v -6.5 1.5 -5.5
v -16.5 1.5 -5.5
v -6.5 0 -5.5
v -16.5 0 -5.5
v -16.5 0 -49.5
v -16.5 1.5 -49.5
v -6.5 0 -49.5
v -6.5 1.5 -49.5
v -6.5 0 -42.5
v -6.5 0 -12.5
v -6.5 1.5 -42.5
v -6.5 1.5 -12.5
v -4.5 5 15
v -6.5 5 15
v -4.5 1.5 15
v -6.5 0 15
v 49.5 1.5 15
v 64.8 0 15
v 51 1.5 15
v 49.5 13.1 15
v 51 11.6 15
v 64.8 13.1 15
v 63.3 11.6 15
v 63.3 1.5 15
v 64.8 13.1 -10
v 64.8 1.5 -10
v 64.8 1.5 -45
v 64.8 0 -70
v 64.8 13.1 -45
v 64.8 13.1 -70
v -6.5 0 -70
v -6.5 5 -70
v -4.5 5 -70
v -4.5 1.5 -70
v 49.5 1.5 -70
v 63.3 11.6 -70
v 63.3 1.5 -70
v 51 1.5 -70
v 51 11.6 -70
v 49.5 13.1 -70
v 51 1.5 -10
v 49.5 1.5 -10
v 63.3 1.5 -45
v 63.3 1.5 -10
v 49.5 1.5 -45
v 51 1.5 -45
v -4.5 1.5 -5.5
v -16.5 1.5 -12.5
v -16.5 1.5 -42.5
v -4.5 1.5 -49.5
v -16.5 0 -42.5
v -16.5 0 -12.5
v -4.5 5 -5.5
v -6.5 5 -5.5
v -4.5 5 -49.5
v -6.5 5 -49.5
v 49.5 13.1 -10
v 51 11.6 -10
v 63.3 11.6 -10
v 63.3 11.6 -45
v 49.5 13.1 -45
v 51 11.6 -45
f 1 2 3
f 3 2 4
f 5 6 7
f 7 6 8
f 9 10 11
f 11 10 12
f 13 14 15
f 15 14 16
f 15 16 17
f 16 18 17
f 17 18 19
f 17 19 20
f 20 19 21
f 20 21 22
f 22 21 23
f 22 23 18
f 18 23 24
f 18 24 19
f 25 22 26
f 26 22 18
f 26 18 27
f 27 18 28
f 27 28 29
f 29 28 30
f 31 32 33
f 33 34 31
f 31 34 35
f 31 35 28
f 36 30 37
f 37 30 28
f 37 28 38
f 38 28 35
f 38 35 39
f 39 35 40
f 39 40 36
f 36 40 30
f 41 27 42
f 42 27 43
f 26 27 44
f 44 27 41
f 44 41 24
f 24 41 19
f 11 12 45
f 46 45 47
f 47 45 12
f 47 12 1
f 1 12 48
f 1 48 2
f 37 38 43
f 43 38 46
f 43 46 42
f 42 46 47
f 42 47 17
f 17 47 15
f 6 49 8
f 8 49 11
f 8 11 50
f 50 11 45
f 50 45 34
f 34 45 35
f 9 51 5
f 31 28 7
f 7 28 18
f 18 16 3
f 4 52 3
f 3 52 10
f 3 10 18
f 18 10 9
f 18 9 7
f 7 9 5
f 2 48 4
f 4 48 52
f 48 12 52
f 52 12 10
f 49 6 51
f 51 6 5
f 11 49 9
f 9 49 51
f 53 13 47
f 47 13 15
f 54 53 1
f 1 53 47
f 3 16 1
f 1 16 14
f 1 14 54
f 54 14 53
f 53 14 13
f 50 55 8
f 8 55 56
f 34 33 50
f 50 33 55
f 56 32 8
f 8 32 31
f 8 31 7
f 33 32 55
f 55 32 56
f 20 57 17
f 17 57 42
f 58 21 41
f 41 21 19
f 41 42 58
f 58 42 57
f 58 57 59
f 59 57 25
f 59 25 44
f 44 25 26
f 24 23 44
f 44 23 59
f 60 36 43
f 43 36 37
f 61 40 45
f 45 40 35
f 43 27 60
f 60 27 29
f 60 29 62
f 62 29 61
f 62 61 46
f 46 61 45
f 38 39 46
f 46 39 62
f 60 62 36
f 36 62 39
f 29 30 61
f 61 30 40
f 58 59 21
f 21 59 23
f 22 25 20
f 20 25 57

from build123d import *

# Parameters (mm, degrees)
BOSS_EXTRUDE2_DEPTH  = 1.5
SKETCH1_4_W          = 10
SKETCH1_4_H          = 7
BOSS_EXTRUDE3_DEPTH  = 1.5
SKETCH1_14_W         = 2
SKETCH1_14_H         = 20.5
BOSS_EXTRUDE11_DEPTH = 5
SKETCH1_16_W         = 1.5
SKETCH1_16_H         = 25
BOSS_EXTRUDE12_DEPTH = 11.6
SKETCH2_W            = 15.3
SKETCH2_H            = 25
BOSS_EXTRUDE13_DEPTH = 1.5


with BuildPart() as part:
    # Sketch1 → Boss-Extrude2 (new body)
    with BuildSketch(Plane(origin=(0, 0, 0), x_dir=(1, 0, 0), z_dir=(0, 1, 0))):
        Polygon((49.5, 70), (-4.5, 70), (-4.5, 49.5), (-6.5, 49.5), (-6.5, 42.5), (-6.5, 12.5), (-6.5, 5.5), (-4.5, 5.5), (-4.5, -15), (21.3, -15), (32.3, -15), (47.433426619, -15), (49.5, -15), (49.5, 10), (51, 10), (51, -15), (52.3, -15), (53.8, -15), (59.19614989, -15), (63.3, -15), (63.3, 10), (64.8, 10), (64.8, 11.5), (64.8, 45), (63.3, 45), (63.3, 70), (60.5, 70), (51, 70), (51, 45), (49.5, 45), align=None)
    extrude(amount=BOSS_EXTRUDE2_DEPTH)

    # Sketch1<4> → Boss-Extrude3 (add)
    with BuildSketch(Plane(origin=(0, 0, 0), x_dir=(1, 0, 0), z_dir=(0, 1, 0))):
        with Locations((-11.5, 46)):
            Rectangle(SKETCH1_4_W, SKETCH1_4_H)
        with Locations((-11.5, 9)):
            Rectangle(SKETCH1_4_W, SKETCH1_4_H)
    extrude(amount=BOSS_EXTRUDE3_DEPTH)

    # Sketch1<14> → Boss-Extrude11 (add)
    with BuildSketch(Plane(origin=(0, 0, 0), x_dir=(1, 0, 0), z_dir=(0, 1, 0))):
        with Locations((-5.5, 59.75)):
            Rectangle(SKETCH1_14_W, SKETCH1_14_H)
        with Locations((-5.5, -4.75)):
            Rectangle(SKETCH1_14_W, SKETCH1_14_H)
    extrude(amount=BOSS_EXTRUDE11_DEPTH)

    # Sketch1<16> → Boss-Extrude12 (add)
    with BuildSketch(Plane(origin=(0, 0, 0), x_dir=(1, 0, 0), z_dir=(0, 1, 0))):
        with Locations((50.25, -2.5)):
            Rectangle(SKETCH1_16_W, SKETCH1_16_H)
        with Locations((64.05, -2.5)):
            Rectangle(SKETCH1_16_W, SKETCH1_16_H)
        with Locations((64.05, 57.5)):
            Rectangle(SKETCH1_16_W, SKETCH1_16_H)
        with Locations((50.25, 57.5)):
            Rectangle(SKETCH1_16_W, SKETCH1_16_H)
    extrude(amount=BOSS_EXTRUDE12_DEPTH)

    # Sketch2 → Boss-Extrude13 (add)
    with BuildSketch(Plane(origin=(0, 11.6, 0), x_dir=(1, 0, 0), z_dir=(0, 1, 0))):
        with Locations((57.15, 57.5)):
            Rectangle(SKETCH2_W, SKETCH2_H)
        with Locations((57.15, -2.5)):
            Rectangle(SKETCH2_W, SKETCH2_H)
    extrude(amount=BOSS_EXTRUDE13_DEPTH)


solid = part.part
